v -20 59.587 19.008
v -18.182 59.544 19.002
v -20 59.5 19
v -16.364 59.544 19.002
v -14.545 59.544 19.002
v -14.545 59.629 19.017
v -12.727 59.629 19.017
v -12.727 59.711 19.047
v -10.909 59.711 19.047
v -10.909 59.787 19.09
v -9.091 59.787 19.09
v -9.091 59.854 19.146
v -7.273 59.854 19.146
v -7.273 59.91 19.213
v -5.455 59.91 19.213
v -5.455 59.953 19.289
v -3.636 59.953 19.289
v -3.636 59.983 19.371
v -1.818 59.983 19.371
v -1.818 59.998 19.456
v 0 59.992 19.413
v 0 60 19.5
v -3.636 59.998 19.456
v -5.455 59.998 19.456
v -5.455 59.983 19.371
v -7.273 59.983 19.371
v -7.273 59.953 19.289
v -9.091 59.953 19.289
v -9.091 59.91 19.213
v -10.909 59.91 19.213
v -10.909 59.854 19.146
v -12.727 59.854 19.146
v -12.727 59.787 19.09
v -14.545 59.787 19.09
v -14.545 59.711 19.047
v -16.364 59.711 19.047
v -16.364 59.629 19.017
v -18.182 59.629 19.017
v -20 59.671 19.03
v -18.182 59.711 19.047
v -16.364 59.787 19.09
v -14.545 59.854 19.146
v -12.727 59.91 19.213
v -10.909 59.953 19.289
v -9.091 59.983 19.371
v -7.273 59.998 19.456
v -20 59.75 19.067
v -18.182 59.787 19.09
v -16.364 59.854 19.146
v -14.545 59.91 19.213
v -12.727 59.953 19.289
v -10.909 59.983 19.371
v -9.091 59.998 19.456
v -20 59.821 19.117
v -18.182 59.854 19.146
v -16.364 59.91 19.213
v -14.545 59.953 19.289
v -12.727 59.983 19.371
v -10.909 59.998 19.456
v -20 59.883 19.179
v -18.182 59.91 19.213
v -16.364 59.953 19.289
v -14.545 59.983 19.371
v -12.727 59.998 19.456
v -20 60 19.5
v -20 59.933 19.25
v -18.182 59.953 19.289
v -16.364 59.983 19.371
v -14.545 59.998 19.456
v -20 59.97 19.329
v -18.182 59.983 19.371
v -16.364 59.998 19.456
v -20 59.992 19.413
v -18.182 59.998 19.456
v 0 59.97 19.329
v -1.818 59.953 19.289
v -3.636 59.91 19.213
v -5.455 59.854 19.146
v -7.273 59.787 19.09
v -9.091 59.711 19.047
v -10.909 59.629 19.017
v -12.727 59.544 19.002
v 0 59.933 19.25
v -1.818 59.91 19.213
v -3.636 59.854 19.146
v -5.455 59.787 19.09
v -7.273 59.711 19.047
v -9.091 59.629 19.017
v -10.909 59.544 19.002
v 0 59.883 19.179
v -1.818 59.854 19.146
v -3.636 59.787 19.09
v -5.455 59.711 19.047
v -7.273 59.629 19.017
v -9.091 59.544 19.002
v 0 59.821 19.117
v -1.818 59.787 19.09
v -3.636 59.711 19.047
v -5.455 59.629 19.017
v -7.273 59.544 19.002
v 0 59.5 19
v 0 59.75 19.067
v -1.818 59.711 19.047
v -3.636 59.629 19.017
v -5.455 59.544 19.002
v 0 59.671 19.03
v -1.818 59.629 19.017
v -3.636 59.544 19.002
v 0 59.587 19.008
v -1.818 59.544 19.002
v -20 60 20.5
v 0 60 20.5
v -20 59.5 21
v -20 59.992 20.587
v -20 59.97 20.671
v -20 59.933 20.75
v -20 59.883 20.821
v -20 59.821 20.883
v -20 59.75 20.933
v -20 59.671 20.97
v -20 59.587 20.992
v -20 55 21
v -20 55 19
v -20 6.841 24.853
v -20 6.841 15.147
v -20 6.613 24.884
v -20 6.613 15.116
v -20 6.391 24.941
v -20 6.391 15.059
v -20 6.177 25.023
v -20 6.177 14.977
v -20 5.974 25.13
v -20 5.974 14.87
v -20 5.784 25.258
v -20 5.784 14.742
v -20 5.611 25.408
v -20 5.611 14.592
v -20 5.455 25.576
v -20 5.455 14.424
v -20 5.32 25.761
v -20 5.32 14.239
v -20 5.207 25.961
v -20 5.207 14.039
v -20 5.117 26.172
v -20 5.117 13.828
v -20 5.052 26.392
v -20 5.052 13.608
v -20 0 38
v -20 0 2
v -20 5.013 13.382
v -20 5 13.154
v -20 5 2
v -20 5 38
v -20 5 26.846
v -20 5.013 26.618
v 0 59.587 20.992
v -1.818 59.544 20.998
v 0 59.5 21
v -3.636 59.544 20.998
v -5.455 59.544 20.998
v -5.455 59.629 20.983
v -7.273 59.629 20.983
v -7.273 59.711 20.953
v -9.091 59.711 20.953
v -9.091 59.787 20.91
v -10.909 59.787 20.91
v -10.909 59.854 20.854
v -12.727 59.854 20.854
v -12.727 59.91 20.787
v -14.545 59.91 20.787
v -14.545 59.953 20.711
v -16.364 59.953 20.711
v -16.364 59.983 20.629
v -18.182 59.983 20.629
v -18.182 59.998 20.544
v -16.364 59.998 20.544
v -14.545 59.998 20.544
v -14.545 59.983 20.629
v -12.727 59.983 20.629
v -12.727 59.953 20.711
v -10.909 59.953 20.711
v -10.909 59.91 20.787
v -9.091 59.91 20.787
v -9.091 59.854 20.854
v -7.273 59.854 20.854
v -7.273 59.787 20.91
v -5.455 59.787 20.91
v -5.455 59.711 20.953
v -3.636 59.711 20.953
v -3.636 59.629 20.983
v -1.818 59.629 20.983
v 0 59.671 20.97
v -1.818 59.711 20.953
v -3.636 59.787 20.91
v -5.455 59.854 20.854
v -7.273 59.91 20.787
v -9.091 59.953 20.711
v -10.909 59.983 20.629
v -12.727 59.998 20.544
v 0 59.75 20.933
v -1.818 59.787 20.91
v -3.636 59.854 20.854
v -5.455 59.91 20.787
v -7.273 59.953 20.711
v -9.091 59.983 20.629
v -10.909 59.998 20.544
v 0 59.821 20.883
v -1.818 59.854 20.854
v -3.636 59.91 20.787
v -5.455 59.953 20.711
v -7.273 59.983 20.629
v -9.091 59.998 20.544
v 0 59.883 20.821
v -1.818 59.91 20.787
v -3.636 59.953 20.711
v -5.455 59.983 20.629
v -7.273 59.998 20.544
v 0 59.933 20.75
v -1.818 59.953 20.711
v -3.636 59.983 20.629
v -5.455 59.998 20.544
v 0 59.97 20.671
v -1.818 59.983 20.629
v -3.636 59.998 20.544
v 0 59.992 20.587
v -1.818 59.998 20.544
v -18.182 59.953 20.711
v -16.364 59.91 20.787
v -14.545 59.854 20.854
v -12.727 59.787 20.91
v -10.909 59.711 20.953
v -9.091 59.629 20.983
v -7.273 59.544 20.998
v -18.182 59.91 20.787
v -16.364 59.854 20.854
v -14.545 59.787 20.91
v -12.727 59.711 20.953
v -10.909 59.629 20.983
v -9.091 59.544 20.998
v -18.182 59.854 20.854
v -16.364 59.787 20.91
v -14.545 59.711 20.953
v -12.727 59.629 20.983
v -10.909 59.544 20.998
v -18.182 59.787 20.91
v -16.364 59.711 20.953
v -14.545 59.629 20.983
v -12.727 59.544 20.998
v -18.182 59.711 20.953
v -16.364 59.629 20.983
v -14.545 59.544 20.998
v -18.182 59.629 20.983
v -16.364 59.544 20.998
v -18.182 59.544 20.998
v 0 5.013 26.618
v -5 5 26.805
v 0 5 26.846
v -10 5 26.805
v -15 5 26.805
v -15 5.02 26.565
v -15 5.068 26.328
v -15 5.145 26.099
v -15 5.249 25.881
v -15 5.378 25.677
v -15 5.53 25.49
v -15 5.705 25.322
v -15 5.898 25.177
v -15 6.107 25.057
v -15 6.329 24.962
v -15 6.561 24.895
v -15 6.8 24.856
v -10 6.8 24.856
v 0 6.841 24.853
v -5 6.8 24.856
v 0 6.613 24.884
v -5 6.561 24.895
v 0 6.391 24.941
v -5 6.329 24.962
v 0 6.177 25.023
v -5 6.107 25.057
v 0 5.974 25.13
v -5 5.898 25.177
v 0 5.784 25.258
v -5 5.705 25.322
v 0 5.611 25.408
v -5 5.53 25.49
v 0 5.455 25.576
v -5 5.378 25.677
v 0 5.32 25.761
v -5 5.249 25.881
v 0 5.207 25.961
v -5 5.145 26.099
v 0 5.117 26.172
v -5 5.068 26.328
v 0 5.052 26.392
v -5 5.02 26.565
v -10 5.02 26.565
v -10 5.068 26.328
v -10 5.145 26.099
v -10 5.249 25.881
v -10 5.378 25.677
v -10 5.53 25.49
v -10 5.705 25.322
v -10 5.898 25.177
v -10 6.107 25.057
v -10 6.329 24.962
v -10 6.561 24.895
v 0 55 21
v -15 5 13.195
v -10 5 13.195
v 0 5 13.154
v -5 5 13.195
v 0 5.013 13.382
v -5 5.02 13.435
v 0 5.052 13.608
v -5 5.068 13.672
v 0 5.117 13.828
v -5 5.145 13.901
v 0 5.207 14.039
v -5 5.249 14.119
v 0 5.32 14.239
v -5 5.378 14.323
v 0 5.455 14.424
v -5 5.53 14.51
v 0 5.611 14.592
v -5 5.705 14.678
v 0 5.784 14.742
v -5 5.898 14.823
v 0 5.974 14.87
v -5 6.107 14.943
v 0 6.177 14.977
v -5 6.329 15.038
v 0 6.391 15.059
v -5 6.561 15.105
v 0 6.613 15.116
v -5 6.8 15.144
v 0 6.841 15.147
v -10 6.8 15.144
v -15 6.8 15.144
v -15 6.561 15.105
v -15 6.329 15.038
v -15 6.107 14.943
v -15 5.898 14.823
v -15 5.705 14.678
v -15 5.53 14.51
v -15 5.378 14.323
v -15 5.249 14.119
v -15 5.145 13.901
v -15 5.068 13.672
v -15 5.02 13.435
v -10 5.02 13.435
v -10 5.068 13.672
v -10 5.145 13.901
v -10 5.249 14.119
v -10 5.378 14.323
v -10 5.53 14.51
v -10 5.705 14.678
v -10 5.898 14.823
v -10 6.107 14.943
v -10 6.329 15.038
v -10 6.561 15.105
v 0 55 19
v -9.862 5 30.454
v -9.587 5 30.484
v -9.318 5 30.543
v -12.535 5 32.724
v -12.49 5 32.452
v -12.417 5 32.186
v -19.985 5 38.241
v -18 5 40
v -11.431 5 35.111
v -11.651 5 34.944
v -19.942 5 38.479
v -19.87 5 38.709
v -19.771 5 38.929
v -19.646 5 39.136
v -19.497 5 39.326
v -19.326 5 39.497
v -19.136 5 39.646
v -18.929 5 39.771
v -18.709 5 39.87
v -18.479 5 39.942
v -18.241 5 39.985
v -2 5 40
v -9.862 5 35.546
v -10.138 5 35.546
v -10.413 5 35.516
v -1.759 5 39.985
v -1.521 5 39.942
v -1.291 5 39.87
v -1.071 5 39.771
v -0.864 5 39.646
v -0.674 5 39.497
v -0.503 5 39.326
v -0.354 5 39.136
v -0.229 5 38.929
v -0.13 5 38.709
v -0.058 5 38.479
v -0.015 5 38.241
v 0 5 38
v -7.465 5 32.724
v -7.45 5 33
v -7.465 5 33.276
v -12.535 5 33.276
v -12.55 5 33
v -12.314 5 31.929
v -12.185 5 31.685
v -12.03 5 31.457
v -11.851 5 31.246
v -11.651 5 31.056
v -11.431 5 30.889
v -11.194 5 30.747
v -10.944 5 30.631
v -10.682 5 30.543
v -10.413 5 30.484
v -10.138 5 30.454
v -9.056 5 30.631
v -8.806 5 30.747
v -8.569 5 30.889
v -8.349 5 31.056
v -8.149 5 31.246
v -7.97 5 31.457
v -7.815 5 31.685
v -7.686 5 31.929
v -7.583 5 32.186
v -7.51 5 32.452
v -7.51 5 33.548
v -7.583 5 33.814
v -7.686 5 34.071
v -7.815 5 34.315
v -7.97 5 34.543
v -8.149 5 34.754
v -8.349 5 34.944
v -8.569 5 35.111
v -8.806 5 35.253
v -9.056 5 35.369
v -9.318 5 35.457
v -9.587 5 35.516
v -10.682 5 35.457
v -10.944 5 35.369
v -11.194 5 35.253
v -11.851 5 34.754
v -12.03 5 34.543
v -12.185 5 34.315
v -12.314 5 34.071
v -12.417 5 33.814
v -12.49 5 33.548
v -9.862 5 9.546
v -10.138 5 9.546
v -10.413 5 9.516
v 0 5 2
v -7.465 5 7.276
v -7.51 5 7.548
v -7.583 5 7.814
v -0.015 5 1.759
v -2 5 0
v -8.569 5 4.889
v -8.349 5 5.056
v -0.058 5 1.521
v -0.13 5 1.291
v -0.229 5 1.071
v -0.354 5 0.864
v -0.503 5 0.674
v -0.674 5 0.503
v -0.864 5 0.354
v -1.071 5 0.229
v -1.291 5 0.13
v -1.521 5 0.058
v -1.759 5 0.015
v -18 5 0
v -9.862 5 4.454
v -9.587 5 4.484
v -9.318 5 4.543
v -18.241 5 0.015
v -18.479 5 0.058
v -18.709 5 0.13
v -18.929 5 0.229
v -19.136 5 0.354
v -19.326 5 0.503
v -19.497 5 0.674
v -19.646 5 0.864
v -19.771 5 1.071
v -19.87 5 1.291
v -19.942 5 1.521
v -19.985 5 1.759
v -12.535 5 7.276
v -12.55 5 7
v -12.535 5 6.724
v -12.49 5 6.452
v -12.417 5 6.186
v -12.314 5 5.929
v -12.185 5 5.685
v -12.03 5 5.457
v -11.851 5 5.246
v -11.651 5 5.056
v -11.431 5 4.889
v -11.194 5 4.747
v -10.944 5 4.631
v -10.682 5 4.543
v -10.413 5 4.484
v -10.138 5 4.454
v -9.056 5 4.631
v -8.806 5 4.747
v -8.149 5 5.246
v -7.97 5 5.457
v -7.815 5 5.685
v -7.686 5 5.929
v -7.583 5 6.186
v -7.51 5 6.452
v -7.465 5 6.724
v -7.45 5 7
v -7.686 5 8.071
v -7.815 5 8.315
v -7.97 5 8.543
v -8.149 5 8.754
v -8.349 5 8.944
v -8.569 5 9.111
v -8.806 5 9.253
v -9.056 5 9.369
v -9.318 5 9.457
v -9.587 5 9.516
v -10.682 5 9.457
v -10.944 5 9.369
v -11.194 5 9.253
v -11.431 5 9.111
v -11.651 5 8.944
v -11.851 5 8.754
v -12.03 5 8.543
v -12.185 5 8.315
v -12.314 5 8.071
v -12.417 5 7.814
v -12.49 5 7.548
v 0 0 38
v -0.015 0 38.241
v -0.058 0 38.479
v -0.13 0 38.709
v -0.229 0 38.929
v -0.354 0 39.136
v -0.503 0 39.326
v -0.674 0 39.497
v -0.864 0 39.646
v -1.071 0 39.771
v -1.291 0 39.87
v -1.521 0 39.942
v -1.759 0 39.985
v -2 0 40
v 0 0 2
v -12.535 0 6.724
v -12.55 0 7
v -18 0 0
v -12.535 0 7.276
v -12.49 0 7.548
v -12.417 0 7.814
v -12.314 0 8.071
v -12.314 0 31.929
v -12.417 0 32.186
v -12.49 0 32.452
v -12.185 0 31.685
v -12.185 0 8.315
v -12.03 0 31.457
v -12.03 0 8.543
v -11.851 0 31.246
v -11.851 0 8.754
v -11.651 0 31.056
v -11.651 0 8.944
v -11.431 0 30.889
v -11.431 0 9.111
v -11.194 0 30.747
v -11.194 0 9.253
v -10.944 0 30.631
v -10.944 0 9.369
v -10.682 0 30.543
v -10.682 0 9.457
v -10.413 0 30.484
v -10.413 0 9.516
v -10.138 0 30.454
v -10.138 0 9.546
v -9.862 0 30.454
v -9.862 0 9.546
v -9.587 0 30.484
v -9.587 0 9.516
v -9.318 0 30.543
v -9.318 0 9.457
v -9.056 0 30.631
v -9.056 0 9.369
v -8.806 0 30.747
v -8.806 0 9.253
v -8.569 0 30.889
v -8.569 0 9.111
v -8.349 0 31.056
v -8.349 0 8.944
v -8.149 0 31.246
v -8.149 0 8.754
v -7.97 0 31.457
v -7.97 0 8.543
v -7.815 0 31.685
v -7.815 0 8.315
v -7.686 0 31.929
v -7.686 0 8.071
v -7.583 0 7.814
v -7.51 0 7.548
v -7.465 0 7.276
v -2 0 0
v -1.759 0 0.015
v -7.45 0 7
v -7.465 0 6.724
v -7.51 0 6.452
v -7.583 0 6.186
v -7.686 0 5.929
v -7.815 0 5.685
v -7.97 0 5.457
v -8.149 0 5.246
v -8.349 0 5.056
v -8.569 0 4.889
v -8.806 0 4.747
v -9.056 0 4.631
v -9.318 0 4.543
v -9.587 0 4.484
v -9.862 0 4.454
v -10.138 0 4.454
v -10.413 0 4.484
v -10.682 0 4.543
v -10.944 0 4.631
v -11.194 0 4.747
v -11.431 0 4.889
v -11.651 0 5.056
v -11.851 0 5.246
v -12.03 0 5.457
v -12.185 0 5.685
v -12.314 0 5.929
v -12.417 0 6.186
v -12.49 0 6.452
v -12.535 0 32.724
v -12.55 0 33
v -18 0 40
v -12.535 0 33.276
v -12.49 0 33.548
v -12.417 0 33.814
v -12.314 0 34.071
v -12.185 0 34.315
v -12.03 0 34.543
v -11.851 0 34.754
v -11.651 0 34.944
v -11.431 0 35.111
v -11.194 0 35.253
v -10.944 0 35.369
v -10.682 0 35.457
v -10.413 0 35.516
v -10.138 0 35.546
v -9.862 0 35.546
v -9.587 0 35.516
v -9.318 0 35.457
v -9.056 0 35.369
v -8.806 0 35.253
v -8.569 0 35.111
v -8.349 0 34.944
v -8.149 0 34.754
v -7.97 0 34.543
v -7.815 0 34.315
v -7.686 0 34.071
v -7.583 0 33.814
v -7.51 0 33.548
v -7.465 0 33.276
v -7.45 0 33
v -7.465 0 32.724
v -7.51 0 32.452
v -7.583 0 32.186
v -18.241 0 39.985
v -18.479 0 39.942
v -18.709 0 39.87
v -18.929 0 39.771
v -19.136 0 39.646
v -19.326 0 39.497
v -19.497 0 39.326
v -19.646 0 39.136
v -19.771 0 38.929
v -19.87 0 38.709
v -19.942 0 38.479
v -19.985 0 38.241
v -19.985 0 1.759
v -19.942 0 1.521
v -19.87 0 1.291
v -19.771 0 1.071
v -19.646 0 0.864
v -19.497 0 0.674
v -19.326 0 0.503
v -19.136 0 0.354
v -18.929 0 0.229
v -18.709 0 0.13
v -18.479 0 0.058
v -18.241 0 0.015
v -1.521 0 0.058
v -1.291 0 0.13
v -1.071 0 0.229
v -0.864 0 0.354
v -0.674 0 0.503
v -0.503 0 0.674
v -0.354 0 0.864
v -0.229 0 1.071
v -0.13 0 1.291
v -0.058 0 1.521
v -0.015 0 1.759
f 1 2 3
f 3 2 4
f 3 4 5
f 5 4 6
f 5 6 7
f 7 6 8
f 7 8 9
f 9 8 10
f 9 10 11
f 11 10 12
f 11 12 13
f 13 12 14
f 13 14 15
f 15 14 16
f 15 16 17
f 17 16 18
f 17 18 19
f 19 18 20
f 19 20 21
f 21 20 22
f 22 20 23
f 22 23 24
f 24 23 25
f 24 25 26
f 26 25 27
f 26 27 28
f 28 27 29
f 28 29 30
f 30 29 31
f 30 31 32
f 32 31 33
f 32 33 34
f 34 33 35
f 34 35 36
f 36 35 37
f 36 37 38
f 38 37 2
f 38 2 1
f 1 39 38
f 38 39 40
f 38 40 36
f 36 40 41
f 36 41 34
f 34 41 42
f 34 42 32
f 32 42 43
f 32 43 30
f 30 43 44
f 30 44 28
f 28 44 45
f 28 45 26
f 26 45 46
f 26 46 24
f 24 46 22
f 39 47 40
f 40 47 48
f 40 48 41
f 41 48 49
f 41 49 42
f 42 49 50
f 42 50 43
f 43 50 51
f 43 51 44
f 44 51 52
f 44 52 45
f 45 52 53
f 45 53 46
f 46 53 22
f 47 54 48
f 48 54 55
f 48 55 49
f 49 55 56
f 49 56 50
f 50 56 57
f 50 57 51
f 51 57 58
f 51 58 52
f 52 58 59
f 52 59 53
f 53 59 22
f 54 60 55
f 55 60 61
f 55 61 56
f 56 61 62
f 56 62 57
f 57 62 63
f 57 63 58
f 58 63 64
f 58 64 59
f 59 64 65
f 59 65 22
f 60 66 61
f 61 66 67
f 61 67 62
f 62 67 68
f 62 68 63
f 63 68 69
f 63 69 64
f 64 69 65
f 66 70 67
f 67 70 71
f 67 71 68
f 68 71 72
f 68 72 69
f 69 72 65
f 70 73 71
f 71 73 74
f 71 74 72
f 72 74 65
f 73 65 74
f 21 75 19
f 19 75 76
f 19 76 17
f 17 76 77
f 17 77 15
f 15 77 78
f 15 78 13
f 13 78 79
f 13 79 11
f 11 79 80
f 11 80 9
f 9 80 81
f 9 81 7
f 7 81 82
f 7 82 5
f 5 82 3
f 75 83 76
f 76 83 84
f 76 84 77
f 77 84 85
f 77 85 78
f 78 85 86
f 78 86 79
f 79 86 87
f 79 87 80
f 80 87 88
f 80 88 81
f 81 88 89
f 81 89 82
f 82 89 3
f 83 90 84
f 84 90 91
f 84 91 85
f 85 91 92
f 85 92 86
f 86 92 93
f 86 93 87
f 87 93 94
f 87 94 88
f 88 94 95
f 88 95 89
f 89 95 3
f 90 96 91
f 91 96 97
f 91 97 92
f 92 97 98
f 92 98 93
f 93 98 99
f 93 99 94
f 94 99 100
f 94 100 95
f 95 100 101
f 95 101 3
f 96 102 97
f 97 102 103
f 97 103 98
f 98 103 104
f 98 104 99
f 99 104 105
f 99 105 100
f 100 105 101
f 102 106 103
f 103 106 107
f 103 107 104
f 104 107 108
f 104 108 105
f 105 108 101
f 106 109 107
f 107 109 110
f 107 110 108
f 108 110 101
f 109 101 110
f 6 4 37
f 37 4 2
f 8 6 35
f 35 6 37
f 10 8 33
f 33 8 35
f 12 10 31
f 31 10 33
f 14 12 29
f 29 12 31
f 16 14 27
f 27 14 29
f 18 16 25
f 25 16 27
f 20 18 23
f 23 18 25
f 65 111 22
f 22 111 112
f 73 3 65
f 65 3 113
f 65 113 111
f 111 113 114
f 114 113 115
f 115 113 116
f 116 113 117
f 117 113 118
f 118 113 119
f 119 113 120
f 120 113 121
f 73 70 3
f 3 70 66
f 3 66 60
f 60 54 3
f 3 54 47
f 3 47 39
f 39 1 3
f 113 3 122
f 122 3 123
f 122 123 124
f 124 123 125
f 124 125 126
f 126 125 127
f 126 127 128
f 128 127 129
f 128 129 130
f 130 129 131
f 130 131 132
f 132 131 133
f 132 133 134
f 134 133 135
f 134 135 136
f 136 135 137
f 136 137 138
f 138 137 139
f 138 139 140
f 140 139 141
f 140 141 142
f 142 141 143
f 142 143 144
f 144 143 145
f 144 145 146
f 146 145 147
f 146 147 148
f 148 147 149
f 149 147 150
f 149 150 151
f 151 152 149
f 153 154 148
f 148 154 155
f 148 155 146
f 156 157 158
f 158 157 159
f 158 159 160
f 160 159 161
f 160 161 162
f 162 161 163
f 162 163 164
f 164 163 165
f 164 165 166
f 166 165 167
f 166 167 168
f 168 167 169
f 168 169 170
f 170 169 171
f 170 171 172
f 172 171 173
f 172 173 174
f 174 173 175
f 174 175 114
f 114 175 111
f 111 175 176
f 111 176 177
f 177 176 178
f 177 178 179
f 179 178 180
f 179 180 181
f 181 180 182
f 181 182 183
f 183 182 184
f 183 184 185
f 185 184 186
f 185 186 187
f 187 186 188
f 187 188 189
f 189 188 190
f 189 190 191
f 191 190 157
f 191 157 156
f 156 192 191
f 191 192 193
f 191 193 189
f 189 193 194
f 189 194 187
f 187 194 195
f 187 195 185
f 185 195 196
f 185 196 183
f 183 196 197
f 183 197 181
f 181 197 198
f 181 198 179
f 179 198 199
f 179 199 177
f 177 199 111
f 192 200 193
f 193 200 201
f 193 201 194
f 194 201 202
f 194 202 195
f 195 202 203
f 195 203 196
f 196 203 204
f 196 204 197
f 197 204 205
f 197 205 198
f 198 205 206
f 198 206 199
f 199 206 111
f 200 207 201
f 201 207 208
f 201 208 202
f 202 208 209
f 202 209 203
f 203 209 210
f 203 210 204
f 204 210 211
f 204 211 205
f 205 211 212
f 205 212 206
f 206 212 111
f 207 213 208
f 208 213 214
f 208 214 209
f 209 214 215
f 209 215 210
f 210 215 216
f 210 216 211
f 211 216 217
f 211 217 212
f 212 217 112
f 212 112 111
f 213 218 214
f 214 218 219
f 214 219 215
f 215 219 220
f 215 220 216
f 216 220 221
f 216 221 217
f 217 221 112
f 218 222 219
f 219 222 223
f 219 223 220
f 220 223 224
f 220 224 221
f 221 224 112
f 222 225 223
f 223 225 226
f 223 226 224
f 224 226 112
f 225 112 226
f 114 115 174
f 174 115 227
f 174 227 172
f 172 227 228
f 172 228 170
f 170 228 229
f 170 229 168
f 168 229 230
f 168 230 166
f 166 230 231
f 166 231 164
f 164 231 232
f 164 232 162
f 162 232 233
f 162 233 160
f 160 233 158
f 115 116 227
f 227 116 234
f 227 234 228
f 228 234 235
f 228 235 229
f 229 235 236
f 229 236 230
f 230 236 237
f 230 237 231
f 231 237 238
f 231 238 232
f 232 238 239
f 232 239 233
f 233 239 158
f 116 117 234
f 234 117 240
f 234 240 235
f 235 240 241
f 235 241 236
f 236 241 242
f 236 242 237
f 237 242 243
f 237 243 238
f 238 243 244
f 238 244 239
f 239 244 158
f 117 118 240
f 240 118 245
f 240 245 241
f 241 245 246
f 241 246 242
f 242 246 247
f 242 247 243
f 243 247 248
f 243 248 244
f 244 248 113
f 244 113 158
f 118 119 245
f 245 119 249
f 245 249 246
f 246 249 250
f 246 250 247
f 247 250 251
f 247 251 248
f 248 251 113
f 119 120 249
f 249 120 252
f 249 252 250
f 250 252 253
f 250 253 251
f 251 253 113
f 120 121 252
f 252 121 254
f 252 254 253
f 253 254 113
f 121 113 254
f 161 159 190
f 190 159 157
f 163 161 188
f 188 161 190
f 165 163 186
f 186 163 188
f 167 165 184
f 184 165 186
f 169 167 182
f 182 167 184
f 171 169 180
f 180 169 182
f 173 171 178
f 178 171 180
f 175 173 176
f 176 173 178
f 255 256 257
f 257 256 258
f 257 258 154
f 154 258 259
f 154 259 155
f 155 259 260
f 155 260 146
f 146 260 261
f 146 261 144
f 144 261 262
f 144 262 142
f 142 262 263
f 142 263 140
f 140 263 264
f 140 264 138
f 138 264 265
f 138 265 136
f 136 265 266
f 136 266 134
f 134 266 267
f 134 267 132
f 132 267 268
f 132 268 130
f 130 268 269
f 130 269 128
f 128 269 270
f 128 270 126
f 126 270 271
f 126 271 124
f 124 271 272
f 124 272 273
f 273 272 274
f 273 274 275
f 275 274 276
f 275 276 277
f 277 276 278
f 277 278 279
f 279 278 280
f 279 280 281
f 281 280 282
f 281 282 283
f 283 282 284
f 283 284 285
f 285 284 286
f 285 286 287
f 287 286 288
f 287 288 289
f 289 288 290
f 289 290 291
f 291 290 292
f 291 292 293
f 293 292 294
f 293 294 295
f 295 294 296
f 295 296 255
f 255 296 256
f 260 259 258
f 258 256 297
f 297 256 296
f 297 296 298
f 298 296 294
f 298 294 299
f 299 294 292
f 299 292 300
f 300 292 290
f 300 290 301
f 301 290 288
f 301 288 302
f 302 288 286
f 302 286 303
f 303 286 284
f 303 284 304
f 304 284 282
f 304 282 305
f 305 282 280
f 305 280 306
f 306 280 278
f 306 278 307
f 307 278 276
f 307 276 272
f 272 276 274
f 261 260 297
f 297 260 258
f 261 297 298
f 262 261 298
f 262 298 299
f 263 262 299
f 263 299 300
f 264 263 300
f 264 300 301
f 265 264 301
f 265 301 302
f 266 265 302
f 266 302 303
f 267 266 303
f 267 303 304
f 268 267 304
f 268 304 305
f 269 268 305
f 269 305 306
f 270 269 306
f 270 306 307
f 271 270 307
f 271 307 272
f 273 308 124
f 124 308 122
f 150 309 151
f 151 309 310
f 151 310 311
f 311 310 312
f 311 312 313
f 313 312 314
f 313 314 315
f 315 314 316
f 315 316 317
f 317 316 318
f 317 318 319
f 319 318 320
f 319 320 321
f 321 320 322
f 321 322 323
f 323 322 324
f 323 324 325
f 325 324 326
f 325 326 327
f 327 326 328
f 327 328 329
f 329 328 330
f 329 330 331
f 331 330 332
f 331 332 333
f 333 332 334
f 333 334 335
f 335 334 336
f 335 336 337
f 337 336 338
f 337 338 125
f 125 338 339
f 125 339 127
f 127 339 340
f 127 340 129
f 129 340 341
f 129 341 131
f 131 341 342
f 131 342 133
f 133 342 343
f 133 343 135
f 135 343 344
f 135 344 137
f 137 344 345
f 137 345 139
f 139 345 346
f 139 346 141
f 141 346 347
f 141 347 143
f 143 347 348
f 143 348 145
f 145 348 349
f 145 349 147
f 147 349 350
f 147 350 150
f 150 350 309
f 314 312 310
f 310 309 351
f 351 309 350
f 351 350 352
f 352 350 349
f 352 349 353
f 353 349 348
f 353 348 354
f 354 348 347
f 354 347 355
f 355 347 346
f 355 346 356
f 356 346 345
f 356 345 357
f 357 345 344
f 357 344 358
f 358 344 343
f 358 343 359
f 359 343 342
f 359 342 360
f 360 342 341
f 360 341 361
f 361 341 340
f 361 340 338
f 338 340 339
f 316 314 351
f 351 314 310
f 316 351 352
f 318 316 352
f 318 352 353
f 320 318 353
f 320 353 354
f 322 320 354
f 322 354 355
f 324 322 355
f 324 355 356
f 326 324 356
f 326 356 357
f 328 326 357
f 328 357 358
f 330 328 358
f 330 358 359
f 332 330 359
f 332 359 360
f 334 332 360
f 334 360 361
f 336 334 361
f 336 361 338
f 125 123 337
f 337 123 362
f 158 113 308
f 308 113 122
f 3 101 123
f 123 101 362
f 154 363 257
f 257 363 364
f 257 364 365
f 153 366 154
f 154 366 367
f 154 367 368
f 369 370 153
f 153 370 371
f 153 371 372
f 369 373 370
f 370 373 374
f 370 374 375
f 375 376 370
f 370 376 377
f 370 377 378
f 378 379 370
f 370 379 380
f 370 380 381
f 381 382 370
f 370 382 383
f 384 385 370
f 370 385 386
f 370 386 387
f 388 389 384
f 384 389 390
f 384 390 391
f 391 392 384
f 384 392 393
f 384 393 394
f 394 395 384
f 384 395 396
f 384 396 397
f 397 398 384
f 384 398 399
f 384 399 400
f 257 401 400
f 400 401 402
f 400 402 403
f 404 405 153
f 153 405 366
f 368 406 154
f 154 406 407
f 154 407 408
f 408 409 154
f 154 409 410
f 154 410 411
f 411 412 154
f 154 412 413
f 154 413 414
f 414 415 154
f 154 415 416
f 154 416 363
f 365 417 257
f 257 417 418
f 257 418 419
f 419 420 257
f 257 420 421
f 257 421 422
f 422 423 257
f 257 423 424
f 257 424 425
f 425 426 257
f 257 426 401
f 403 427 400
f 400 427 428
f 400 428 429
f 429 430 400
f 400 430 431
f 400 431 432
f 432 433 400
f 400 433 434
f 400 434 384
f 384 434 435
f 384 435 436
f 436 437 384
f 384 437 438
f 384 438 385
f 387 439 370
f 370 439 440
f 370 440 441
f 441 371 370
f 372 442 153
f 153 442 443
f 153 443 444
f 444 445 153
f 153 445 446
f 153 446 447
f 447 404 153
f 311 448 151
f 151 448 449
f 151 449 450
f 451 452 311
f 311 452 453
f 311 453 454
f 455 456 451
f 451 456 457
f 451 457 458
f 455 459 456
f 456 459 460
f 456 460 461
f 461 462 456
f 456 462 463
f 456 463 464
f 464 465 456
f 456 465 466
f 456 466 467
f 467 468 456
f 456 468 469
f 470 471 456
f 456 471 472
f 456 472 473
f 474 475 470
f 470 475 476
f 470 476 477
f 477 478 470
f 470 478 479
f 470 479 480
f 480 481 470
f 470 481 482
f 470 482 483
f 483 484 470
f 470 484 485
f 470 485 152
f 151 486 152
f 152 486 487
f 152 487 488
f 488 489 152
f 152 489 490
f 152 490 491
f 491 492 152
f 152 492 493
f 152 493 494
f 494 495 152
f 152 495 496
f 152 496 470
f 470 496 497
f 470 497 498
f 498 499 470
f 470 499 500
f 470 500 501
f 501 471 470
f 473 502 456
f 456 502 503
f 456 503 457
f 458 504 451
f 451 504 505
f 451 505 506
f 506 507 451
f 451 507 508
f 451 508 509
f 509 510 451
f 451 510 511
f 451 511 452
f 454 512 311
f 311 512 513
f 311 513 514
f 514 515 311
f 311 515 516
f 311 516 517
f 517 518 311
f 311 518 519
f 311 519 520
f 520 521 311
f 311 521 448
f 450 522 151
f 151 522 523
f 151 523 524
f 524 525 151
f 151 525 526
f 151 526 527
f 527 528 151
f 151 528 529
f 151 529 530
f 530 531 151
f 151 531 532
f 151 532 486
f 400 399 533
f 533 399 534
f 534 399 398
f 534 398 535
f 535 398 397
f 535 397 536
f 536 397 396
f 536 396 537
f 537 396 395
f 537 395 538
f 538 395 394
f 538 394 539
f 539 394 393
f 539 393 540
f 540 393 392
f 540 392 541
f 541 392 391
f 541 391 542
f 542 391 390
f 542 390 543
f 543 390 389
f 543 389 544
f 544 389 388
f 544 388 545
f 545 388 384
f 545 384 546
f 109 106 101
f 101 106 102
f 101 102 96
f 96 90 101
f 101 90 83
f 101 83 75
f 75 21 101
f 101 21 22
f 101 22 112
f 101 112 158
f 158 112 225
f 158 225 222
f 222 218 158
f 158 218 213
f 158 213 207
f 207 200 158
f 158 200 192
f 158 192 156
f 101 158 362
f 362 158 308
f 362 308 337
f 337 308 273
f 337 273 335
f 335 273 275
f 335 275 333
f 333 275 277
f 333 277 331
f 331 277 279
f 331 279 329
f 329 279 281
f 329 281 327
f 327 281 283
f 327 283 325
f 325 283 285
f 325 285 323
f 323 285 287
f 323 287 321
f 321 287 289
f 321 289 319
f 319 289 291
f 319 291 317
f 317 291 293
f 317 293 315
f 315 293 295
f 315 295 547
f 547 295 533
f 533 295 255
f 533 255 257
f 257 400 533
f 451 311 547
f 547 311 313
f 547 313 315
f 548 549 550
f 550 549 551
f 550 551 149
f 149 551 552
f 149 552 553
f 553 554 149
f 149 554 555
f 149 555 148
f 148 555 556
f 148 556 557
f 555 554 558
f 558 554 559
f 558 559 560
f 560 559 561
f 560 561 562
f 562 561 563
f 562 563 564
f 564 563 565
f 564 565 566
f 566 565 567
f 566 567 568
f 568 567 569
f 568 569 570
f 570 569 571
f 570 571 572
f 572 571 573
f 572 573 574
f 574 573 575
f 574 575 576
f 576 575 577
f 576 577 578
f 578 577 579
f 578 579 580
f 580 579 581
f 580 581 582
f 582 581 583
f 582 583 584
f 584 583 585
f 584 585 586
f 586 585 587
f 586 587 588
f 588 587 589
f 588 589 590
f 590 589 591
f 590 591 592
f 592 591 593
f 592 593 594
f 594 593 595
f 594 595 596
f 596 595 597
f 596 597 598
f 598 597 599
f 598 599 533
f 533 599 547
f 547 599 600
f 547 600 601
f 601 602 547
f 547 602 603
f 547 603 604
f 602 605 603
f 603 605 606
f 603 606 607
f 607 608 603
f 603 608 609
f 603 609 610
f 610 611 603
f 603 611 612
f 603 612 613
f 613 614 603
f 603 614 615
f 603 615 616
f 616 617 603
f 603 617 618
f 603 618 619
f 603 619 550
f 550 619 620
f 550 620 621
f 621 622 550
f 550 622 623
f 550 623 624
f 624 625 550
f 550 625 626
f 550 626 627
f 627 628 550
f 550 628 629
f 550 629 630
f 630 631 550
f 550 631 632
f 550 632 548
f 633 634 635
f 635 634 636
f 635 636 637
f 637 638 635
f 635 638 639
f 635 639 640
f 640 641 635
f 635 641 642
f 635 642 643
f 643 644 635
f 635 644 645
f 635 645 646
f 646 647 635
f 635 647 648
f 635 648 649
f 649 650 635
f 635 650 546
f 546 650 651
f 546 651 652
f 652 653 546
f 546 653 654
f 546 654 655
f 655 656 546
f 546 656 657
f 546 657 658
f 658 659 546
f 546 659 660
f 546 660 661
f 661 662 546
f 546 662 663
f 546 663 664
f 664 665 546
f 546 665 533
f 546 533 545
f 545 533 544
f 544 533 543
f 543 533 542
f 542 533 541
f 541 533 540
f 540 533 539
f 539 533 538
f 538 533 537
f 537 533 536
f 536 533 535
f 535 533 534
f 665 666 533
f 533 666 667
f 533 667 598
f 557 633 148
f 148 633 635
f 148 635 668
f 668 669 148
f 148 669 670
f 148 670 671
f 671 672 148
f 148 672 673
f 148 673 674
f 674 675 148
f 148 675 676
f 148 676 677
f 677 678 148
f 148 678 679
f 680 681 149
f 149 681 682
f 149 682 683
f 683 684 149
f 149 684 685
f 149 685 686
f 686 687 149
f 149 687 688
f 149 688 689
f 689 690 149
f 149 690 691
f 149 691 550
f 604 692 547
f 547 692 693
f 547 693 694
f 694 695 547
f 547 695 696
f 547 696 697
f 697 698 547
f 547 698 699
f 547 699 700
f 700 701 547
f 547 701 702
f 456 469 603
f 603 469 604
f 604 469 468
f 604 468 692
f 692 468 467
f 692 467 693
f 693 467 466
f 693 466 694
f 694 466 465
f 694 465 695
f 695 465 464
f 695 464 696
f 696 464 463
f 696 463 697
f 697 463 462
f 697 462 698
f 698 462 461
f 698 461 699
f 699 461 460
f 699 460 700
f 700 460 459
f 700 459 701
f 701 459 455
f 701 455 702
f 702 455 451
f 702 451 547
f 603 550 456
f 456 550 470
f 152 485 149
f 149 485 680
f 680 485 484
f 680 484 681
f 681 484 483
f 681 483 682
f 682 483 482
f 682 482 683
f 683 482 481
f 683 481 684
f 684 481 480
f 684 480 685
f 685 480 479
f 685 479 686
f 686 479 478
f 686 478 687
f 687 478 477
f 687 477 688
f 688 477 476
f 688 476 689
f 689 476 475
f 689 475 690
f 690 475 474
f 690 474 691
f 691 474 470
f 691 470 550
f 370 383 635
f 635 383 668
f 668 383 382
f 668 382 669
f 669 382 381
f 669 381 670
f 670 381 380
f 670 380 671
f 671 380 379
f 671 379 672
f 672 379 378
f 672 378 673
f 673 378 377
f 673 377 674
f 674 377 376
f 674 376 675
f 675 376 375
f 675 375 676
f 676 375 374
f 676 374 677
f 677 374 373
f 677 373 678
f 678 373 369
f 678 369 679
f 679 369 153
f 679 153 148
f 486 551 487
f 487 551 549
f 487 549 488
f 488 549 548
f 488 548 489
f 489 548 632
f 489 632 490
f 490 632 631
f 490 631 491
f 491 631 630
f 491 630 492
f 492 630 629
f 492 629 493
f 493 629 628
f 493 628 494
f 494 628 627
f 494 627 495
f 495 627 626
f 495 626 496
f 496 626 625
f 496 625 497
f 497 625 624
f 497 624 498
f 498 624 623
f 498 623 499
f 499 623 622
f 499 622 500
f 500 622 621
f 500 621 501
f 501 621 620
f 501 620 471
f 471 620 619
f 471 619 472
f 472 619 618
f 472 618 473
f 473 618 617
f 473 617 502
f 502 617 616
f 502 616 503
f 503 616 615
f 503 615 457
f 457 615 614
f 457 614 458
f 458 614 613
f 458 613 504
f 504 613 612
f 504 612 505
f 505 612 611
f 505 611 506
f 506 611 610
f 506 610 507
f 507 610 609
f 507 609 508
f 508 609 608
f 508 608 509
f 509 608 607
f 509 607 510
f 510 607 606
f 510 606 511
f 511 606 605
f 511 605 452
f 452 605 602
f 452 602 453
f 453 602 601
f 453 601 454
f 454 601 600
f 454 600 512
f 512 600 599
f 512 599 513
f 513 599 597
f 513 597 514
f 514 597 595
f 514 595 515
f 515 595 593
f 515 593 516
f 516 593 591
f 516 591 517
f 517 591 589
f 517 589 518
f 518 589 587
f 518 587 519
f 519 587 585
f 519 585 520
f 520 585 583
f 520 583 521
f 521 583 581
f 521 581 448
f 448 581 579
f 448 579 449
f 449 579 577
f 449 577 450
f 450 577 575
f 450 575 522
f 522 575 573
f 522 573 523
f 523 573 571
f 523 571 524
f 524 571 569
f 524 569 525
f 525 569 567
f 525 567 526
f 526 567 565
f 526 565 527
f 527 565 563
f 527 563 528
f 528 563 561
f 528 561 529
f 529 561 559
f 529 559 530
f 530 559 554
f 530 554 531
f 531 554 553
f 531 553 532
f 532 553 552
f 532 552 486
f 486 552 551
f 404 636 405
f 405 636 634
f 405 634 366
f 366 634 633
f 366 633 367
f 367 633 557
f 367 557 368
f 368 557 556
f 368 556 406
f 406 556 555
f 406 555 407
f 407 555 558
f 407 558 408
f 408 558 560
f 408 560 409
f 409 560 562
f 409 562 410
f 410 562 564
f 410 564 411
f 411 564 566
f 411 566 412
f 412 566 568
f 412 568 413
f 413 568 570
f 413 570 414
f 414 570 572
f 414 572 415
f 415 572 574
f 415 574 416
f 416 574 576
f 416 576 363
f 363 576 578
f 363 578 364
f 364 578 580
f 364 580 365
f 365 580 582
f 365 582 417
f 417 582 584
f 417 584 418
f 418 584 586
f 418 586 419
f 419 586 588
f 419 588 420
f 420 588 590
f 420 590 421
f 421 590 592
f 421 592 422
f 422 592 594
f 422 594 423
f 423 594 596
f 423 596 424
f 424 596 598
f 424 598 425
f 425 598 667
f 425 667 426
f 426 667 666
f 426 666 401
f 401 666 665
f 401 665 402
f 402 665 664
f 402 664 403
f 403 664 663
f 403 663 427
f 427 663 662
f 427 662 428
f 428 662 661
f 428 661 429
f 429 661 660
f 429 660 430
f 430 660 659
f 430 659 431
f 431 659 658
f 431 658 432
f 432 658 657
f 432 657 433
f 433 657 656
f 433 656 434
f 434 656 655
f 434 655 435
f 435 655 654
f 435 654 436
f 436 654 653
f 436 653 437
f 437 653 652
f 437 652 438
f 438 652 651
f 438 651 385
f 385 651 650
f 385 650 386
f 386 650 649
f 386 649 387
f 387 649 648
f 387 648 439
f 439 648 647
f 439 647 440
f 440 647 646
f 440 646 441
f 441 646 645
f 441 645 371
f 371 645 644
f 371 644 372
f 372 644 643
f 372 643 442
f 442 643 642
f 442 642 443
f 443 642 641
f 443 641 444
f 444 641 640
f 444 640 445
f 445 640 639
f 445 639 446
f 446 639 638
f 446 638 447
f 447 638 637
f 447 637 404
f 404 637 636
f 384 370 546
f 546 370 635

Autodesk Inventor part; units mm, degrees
ref_plane "YZ Plane" through (0, 0, 0) normal (1, 0, 0) x (0, 1, 0)
ref_plane "XZ Plane" through (0, 0, 0) normal (0, 1, 0) x (-1, 0, 0)
ref_plane "XY Plane" through (0, 0, 0) normal (0, 0, 1) x (1, 0, 0)
sketch "Skizze1" plane through (0, 0, 0) normal (0, 1, 0) x (-1, 0, 0)
  line L0 (0, 0) -> (20, 0)
  line L1 (20, 0) -> (20, 40)
  line L2 (20, 40) -> (0, 40)
  line L3 (0, 40) -> (0, 0)
  circle A0 centre (10, 33) radius 2.55
  circle A1 centre (10, 7) radius 2.55
  dimension "d0" = 20
  dimension "d1" = 40
  dimension "d2" = 5.1
  dimension "d3" = 5.1
  dimension "d4" = 7
  dimension "d5" = 7
  dimension "d6" = 10
  dimension "d7" = 10
extrude "Extrusion1" add sketch "Skizze1" along normal blind 5
fillet "Rundung1" radius 2 4 edges at (-20, 2.5, 40) (-20, 2.5, 0) (0, 2.5, 0) (0, 2.5, 40)
sketch "Skizze2" plane through (0, 5, 0) normal (0, 1, 0) x (1, 0, 0)
  line L0 (-20, -2) -> (-20, -38) projected
  line L1 (-20, -25) -> (0, -25)
  line L2 (0, -25) -> (0, -15)
  line L3 (0, -15) -> (-20, -15)
  line L4 (-20, -15) -> (-20, -25)
  line L5 (-2, 0) -> (-18, 0) projected
  line L6 (-18, -40) -> (-2, -40) projected
  point P0 (0, 0)
  dimension "d11" = 10
  dimension "d12" = 20
  dimension "d13" = 15
  dimension "d14" = 15
sketch "Skizze5" plane through (0, 0, 0) normal (1, 0, 0) x (0, 1, 0)
  line L0 (55, 21) -> (55, 19)
  line L1 (5, 0) -> (0, 0) projected
  line L2 (5, 2) -> (5, 38) projected
  line L3 (5, 25) -> (55, 21)
  line L4 (5, 15) -> (55, 19)
  point P0 (5, 15)
  dimension "d25" = 19
  dimension "d26" = 2
  dimension "d27" = 50
extrude "Extrusion3" add sketch "Skizze5" against normal up to surface (20 mm away)
sketch "Skizze6" plane through (0, 55, 21) normal (0, 1, 0) x (1, 0, 0)
  line L0 (-20, 2) -> (0, 2) projected
  line L1 (0, 2) -> (0, 0) projected
  line L2 (0, 0) -> (-20, 0) projected
  line L3 (-20, 0) -> (-20, 2) projected
  point P0 (0, 21)
extrude "Extrusion4" add sketch "Skizze6" along normal blind 5
fillet "Rundung2" radius 2 2 edges at (-10, 5, 15) (-10, 5, 25)
fillet "Rundung3" radius 0.5 2 edges at (-10, 60, 21) (-10, 60, 19)
equation "\"d3\" = d2"
equation "\"d5\" = d4"
equation "\"d6\" = d7"
properties part number "Endtstop_Z" material "Polyaryletherketon-Kunststoff"
